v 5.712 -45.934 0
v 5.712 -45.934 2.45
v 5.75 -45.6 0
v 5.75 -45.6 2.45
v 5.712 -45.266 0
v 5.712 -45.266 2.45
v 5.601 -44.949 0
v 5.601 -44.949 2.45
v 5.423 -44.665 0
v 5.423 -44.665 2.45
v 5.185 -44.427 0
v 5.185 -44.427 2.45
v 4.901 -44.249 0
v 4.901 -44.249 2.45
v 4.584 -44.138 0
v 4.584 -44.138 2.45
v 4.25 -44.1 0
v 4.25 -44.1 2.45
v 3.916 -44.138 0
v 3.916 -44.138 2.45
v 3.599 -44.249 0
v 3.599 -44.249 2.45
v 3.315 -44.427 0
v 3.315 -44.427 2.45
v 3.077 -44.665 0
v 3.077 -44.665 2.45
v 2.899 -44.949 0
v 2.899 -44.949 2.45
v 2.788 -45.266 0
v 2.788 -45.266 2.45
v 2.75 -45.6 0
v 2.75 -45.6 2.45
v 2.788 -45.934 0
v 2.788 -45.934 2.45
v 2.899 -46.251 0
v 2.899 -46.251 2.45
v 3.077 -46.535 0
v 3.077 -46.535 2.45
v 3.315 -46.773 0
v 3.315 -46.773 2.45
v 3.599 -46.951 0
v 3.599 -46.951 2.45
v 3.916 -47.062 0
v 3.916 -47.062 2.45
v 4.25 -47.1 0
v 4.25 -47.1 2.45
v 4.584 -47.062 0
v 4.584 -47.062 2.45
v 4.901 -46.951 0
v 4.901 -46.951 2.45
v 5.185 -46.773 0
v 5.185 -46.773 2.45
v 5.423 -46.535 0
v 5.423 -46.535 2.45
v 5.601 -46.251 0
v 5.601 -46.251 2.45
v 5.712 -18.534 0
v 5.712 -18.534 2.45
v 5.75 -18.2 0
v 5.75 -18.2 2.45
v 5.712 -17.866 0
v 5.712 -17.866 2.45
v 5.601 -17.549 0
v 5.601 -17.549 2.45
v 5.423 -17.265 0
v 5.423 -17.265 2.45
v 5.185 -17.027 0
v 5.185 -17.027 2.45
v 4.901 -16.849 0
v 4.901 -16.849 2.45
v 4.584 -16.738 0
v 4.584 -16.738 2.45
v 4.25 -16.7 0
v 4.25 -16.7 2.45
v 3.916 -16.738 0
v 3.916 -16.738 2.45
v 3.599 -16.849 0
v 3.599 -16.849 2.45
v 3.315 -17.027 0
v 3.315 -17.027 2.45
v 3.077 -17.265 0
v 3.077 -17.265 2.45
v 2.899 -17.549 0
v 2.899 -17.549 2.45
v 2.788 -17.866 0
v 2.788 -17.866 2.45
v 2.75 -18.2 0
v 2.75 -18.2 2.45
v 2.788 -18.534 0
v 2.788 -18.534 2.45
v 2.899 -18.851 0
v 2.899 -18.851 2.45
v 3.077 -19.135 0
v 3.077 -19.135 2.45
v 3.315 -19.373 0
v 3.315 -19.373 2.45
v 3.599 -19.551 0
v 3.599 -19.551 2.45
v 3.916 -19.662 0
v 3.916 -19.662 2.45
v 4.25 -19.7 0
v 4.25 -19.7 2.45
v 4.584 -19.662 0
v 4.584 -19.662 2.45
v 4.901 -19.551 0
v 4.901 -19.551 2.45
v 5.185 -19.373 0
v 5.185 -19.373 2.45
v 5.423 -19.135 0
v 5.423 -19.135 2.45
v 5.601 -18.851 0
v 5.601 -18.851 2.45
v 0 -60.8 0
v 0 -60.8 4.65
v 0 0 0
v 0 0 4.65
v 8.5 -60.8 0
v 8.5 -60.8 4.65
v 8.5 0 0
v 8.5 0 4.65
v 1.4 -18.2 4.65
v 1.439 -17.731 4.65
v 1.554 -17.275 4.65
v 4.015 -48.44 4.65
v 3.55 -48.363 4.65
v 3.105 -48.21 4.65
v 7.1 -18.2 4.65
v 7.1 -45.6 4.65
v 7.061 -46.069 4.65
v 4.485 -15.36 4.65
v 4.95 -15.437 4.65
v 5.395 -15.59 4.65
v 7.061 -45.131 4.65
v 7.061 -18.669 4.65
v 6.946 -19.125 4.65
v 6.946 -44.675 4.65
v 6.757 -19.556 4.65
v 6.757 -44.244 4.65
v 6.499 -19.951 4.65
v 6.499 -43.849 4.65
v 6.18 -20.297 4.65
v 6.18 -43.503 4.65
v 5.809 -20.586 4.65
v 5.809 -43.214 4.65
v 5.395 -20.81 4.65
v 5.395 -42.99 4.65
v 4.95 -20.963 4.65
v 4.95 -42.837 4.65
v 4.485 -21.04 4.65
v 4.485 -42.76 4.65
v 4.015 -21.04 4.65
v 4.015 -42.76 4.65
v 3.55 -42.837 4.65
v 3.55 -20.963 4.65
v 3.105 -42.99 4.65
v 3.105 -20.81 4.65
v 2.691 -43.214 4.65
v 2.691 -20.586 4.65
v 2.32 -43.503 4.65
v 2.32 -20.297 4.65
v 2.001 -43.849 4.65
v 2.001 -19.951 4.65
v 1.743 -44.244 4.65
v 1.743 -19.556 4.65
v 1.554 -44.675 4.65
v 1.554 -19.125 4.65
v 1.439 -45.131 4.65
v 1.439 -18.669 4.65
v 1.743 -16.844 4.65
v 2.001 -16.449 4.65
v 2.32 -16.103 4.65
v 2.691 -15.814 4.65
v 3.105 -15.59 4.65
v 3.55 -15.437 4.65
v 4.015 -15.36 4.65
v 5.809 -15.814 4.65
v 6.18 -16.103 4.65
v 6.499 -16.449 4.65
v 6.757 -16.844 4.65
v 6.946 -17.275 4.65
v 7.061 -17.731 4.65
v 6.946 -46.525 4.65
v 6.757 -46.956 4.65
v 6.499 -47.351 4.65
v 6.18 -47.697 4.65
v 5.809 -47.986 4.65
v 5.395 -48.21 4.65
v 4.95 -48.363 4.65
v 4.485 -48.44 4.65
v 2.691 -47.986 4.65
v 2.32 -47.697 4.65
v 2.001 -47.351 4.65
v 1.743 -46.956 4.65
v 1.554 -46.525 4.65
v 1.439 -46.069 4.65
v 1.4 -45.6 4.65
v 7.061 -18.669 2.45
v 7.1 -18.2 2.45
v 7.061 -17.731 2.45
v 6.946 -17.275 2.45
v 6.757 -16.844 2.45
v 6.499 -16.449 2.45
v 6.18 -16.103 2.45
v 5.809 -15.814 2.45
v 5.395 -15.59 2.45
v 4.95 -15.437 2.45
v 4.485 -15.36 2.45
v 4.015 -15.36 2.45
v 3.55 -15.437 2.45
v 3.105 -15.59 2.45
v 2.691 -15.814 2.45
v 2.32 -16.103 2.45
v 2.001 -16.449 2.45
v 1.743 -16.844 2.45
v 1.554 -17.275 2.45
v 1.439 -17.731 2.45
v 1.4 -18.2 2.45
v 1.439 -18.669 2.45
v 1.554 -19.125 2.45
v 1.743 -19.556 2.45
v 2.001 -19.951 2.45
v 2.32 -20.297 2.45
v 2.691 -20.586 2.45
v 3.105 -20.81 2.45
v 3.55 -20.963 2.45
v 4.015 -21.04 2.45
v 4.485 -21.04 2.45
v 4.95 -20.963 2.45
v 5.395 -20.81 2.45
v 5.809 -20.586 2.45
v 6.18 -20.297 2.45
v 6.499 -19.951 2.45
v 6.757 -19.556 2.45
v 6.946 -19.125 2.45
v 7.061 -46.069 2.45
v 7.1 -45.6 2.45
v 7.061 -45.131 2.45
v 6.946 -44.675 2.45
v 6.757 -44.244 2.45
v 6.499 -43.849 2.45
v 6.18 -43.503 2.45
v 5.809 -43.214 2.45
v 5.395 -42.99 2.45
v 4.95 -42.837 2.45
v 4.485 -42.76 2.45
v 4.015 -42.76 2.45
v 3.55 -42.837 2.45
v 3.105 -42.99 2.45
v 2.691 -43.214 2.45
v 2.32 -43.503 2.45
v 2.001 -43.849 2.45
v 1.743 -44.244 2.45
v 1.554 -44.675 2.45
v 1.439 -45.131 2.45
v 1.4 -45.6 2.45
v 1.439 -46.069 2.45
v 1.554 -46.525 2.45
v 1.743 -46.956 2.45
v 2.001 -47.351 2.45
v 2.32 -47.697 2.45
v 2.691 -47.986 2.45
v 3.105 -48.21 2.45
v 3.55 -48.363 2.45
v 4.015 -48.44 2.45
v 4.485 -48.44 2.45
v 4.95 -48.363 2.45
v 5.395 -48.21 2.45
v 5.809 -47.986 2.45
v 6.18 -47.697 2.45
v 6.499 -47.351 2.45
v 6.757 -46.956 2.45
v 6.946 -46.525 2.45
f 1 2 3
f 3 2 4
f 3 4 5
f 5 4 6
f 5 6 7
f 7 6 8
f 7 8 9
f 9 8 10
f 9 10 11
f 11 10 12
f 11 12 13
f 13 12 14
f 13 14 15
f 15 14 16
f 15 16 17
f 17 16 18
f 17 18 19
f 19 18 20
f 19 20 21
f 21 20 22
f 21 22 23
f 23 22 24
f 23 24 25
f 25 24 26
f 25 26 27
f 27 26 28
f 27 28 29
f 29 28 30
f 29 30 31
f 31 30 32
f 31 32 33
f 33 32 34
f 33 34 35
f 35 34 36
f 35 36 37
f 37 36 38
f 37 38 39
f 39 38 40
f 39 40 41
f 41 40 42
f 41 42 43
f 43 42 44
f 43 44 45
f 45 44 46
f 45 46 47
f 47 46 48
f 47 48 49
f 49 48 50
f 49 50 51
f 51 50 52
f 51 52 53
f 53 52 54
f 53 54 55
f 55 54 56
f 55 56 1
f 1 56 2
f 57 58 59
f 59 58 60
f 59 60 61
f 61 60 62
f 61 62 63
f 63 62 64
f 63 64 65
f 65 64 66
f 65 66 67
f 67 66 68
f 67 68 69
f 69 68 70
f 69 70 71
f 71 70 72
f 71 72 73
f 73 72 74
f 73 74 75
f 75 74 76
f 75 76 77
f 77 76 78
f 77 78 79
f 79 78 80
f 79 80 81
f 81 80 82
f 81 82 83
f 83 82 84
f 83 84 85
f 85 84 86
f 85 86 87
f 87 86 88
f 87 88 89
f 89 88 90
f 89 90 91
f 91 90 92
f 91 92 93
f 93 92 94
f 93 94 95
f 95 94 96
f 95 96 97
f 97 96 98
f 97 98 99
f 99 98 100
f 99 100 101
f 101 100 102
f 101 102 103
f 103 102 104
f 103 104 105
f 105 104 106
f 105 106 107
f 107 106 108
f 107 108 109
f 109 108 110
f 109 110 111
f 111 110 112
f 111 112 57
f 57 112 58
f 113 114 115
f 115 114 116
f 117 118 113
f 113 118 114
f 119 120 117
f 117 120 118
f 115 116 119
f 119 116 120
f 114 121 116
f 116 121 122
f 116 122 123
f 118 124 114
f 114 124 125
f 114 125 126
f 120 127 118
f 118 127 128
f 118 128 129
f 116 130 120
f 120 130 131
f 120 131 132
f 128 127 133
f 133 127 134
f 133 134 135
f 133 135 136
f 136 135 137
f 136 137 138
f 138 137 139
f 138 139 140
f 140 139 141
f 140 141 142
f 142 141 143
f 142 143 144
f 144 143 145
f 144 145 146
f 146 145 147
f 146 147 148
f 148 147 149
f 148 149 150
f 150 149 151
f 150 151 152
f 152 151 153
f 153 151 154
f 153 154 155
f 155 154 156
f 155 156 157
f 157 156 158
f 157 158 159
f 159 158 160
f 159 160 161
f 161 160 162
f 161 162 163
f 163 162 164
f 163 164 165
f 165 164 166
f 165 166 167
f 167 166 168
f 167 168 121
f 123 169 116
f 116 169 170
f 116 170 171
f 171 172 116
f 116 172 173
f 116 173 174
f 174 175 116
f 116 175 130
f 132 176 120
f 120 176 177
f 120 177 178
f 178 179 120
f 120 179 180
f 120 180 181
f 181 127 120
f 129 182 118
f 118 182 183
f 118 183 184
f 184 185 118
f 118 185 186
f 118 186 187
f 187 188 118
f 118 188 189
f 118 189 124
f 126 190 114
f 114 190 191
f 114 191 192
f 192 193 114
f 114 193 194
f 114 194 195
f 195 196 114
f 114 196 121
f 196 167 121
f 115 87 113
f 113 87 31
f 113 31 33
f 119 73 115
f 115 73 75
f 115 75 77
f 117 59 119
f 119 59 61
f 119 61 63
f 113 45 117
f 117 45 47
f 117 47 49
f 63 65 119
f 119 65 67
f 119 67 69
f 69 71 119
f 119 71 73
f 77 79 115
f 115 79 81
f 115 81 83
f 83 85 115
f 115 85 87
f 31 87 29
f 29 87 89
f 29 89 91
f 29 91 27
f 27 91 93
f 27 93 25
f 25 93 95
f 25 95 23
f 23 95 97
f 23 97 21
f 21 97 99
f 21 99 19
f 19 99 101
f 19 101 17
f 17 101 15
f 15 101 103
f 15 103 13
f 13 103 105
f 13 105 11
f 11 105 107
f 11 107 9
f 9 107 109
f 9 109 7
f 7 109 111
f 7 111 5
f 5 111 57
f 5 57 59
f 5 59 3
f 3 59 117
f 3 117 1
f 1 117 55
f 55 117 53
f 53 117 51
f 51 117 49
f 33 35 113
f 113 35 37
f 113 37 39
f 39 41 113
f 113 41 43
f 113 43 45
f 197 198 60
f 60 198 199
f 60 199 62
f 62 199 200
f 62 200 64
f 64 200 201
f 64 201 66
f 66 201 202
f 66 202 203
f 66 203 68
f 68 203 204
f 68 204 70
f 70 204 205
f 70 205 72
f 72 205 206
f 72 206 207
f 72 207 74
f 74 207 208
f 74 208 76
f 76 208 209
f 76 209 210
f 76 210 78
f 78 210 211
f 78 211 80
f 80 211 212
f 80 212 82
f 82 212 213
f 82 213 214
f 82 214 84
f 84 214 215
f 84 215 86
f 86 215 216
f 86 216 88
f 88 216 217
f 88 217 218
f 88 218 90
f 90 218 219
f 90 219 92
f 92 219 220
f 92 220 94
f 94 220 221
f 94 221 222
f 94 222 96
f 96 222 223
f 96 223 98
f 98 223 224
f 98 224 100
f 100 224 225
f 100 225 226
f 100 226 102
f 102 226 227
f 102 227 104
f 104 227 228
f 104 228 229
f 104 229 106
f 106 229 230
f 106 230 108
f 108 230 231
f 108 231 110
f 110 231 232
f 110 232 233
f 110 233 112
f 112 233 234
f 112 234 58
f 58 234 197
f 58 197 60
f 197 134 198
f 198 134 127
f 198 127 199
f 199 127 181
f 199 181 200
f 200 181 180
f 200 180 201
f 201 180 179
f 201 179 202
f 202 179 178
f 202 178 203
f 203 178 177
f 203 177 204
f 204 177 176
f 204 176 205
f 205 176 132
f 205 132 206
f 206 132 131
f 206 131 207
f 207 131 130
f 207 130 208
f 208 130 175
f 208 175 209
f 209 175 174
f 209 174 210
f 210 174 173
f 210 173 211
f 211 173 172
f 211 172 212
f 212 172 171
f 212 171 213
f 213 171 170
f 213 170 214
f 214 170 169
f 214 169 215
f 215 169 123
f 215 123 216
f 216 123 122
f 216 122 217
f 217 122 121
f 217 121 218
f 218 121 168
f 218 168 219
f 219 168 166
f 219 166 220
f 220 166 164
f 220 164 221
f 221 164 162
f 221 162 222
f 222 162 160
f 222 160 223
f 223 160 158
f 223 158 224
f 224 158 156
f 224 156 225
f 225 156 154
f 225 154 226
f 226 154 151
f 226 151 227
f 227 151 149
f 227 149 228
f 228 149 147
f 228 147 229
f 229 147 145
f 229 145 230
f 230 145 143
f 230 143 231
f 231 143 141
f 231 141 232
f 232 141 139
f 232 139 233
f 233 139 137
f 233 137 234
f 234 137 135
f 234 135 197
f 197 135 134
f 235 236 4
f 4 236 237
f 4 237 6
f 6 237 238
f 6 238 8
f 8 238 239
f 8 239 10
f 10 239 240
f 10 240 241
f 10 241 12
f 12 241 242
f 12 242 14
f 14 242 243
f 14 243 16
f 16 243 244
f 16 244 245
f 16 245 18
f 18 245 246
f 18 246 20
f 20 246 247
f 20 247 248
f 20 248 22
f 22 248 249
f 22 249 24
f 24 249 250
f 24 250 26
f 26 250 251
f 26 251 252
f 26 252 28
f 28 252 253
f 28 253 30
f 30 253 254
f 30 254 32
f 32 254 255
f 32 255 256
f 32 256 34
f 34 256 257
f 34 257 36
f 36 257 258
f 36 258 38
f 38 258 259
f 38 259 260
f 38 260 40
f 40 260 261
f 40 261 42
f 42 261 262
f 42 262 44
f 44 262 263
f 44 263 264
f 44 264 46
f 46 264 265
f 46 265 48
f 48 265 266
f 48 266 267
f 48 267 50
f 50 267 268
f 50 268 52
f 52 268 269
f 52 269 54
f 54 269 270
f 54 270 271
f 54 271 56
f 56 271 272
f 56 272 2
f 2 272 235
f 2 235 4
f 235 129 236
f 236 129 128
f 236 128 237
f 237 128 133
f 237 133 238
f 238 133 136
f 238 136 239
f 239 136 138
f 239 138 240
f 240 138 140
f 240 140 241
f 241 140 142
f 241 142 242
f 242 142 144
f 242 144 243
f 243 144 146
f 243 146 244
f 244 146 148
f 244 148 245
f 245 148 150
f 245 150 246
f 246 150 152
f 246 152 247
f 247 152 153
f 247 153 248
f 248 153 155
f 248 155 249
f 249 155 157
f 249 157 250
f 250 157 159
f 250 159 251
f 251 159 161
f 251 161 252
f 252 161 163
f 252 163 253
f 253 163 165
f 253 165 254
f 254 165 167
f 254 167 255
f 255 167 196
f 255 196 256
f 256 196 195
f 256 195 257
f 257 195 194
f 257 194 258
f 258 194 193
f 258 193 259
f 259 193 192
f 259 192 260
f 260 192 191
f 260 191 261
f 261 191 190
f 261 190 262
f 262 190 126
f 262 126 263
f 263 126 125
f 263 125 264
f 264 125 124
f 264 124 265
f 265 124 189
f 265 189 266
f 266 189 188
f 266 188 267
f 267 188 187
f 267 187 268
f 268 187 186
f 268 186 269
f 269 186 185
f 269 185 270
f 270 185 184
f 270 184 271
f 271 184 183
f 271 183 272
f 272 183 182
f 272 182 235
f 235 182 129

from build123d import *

# Parameters (mm, degrees)
SKETCH1_W                 = 8.5
SKETCH1_H                 = 60.8
BOSS_EXTRUDE1_DEPTH       = 4.65
F_3_0MM_DOWEL_HOLE1_D     = 3
F_3_0MM_DOWEL_HOLE1_DEPTH = 5
F_3_0MM_DOWEL_HOLE1_TIP   = 0.901290929
SKETCH6_R                 = 2.85
CUT_EXTRUDE1_DEPTH        = 2.2


with BuildPart() as part:
    # Sketch1 → Boss-Extrude1 (new body)
    with BuildSketch(Plane.XY):
        with Locations((4.25, -30.4)):
            Rectangle(SKETCH1_W, SKETCH1_H)
    extrude(amount=BOSS_EXTRUDE1_DEPTH)

    # Ø3.0mm Dowel Hole1
    with Locations(Plane.XY.offset(4.65)):
        with Locations((4.25, -18.2), (4.25, -45.6)):
            Hole(F_3_0MM_DOWEL_HOLE1_D / 2, depth=F_3_0MM_DOWEL_HOLE1_DEPTH)
            with Locations((0, 0, -(F_3_0MM_DOWEL_HOLE1_DEPTH + F_3_0MM_DOWEL_HOLE1_TIP / 2))):  # 118° drill point
                Cone(0, F_3_0MM_DOWEL_HOLE1_D / 2, F_3_0MM_DOWEL_HOLE1_TIP, mode=Mode.SUBTRACT)

    # Sketch6 → Cut-Extrude1 (cut)
    with BuildSketch(Plane.XY.offset(4.65)):
        with Locations((4.25, -18.2)):
            Circle(SKETCH6_R)
        with Locations((4.25, -45.6)):
            Circle(SKETCH6_R)
    extrude(amount=-CUT_EXTRUDE1_DEPTH, mode=Mode.SUBTRACT)


solid = part.part
